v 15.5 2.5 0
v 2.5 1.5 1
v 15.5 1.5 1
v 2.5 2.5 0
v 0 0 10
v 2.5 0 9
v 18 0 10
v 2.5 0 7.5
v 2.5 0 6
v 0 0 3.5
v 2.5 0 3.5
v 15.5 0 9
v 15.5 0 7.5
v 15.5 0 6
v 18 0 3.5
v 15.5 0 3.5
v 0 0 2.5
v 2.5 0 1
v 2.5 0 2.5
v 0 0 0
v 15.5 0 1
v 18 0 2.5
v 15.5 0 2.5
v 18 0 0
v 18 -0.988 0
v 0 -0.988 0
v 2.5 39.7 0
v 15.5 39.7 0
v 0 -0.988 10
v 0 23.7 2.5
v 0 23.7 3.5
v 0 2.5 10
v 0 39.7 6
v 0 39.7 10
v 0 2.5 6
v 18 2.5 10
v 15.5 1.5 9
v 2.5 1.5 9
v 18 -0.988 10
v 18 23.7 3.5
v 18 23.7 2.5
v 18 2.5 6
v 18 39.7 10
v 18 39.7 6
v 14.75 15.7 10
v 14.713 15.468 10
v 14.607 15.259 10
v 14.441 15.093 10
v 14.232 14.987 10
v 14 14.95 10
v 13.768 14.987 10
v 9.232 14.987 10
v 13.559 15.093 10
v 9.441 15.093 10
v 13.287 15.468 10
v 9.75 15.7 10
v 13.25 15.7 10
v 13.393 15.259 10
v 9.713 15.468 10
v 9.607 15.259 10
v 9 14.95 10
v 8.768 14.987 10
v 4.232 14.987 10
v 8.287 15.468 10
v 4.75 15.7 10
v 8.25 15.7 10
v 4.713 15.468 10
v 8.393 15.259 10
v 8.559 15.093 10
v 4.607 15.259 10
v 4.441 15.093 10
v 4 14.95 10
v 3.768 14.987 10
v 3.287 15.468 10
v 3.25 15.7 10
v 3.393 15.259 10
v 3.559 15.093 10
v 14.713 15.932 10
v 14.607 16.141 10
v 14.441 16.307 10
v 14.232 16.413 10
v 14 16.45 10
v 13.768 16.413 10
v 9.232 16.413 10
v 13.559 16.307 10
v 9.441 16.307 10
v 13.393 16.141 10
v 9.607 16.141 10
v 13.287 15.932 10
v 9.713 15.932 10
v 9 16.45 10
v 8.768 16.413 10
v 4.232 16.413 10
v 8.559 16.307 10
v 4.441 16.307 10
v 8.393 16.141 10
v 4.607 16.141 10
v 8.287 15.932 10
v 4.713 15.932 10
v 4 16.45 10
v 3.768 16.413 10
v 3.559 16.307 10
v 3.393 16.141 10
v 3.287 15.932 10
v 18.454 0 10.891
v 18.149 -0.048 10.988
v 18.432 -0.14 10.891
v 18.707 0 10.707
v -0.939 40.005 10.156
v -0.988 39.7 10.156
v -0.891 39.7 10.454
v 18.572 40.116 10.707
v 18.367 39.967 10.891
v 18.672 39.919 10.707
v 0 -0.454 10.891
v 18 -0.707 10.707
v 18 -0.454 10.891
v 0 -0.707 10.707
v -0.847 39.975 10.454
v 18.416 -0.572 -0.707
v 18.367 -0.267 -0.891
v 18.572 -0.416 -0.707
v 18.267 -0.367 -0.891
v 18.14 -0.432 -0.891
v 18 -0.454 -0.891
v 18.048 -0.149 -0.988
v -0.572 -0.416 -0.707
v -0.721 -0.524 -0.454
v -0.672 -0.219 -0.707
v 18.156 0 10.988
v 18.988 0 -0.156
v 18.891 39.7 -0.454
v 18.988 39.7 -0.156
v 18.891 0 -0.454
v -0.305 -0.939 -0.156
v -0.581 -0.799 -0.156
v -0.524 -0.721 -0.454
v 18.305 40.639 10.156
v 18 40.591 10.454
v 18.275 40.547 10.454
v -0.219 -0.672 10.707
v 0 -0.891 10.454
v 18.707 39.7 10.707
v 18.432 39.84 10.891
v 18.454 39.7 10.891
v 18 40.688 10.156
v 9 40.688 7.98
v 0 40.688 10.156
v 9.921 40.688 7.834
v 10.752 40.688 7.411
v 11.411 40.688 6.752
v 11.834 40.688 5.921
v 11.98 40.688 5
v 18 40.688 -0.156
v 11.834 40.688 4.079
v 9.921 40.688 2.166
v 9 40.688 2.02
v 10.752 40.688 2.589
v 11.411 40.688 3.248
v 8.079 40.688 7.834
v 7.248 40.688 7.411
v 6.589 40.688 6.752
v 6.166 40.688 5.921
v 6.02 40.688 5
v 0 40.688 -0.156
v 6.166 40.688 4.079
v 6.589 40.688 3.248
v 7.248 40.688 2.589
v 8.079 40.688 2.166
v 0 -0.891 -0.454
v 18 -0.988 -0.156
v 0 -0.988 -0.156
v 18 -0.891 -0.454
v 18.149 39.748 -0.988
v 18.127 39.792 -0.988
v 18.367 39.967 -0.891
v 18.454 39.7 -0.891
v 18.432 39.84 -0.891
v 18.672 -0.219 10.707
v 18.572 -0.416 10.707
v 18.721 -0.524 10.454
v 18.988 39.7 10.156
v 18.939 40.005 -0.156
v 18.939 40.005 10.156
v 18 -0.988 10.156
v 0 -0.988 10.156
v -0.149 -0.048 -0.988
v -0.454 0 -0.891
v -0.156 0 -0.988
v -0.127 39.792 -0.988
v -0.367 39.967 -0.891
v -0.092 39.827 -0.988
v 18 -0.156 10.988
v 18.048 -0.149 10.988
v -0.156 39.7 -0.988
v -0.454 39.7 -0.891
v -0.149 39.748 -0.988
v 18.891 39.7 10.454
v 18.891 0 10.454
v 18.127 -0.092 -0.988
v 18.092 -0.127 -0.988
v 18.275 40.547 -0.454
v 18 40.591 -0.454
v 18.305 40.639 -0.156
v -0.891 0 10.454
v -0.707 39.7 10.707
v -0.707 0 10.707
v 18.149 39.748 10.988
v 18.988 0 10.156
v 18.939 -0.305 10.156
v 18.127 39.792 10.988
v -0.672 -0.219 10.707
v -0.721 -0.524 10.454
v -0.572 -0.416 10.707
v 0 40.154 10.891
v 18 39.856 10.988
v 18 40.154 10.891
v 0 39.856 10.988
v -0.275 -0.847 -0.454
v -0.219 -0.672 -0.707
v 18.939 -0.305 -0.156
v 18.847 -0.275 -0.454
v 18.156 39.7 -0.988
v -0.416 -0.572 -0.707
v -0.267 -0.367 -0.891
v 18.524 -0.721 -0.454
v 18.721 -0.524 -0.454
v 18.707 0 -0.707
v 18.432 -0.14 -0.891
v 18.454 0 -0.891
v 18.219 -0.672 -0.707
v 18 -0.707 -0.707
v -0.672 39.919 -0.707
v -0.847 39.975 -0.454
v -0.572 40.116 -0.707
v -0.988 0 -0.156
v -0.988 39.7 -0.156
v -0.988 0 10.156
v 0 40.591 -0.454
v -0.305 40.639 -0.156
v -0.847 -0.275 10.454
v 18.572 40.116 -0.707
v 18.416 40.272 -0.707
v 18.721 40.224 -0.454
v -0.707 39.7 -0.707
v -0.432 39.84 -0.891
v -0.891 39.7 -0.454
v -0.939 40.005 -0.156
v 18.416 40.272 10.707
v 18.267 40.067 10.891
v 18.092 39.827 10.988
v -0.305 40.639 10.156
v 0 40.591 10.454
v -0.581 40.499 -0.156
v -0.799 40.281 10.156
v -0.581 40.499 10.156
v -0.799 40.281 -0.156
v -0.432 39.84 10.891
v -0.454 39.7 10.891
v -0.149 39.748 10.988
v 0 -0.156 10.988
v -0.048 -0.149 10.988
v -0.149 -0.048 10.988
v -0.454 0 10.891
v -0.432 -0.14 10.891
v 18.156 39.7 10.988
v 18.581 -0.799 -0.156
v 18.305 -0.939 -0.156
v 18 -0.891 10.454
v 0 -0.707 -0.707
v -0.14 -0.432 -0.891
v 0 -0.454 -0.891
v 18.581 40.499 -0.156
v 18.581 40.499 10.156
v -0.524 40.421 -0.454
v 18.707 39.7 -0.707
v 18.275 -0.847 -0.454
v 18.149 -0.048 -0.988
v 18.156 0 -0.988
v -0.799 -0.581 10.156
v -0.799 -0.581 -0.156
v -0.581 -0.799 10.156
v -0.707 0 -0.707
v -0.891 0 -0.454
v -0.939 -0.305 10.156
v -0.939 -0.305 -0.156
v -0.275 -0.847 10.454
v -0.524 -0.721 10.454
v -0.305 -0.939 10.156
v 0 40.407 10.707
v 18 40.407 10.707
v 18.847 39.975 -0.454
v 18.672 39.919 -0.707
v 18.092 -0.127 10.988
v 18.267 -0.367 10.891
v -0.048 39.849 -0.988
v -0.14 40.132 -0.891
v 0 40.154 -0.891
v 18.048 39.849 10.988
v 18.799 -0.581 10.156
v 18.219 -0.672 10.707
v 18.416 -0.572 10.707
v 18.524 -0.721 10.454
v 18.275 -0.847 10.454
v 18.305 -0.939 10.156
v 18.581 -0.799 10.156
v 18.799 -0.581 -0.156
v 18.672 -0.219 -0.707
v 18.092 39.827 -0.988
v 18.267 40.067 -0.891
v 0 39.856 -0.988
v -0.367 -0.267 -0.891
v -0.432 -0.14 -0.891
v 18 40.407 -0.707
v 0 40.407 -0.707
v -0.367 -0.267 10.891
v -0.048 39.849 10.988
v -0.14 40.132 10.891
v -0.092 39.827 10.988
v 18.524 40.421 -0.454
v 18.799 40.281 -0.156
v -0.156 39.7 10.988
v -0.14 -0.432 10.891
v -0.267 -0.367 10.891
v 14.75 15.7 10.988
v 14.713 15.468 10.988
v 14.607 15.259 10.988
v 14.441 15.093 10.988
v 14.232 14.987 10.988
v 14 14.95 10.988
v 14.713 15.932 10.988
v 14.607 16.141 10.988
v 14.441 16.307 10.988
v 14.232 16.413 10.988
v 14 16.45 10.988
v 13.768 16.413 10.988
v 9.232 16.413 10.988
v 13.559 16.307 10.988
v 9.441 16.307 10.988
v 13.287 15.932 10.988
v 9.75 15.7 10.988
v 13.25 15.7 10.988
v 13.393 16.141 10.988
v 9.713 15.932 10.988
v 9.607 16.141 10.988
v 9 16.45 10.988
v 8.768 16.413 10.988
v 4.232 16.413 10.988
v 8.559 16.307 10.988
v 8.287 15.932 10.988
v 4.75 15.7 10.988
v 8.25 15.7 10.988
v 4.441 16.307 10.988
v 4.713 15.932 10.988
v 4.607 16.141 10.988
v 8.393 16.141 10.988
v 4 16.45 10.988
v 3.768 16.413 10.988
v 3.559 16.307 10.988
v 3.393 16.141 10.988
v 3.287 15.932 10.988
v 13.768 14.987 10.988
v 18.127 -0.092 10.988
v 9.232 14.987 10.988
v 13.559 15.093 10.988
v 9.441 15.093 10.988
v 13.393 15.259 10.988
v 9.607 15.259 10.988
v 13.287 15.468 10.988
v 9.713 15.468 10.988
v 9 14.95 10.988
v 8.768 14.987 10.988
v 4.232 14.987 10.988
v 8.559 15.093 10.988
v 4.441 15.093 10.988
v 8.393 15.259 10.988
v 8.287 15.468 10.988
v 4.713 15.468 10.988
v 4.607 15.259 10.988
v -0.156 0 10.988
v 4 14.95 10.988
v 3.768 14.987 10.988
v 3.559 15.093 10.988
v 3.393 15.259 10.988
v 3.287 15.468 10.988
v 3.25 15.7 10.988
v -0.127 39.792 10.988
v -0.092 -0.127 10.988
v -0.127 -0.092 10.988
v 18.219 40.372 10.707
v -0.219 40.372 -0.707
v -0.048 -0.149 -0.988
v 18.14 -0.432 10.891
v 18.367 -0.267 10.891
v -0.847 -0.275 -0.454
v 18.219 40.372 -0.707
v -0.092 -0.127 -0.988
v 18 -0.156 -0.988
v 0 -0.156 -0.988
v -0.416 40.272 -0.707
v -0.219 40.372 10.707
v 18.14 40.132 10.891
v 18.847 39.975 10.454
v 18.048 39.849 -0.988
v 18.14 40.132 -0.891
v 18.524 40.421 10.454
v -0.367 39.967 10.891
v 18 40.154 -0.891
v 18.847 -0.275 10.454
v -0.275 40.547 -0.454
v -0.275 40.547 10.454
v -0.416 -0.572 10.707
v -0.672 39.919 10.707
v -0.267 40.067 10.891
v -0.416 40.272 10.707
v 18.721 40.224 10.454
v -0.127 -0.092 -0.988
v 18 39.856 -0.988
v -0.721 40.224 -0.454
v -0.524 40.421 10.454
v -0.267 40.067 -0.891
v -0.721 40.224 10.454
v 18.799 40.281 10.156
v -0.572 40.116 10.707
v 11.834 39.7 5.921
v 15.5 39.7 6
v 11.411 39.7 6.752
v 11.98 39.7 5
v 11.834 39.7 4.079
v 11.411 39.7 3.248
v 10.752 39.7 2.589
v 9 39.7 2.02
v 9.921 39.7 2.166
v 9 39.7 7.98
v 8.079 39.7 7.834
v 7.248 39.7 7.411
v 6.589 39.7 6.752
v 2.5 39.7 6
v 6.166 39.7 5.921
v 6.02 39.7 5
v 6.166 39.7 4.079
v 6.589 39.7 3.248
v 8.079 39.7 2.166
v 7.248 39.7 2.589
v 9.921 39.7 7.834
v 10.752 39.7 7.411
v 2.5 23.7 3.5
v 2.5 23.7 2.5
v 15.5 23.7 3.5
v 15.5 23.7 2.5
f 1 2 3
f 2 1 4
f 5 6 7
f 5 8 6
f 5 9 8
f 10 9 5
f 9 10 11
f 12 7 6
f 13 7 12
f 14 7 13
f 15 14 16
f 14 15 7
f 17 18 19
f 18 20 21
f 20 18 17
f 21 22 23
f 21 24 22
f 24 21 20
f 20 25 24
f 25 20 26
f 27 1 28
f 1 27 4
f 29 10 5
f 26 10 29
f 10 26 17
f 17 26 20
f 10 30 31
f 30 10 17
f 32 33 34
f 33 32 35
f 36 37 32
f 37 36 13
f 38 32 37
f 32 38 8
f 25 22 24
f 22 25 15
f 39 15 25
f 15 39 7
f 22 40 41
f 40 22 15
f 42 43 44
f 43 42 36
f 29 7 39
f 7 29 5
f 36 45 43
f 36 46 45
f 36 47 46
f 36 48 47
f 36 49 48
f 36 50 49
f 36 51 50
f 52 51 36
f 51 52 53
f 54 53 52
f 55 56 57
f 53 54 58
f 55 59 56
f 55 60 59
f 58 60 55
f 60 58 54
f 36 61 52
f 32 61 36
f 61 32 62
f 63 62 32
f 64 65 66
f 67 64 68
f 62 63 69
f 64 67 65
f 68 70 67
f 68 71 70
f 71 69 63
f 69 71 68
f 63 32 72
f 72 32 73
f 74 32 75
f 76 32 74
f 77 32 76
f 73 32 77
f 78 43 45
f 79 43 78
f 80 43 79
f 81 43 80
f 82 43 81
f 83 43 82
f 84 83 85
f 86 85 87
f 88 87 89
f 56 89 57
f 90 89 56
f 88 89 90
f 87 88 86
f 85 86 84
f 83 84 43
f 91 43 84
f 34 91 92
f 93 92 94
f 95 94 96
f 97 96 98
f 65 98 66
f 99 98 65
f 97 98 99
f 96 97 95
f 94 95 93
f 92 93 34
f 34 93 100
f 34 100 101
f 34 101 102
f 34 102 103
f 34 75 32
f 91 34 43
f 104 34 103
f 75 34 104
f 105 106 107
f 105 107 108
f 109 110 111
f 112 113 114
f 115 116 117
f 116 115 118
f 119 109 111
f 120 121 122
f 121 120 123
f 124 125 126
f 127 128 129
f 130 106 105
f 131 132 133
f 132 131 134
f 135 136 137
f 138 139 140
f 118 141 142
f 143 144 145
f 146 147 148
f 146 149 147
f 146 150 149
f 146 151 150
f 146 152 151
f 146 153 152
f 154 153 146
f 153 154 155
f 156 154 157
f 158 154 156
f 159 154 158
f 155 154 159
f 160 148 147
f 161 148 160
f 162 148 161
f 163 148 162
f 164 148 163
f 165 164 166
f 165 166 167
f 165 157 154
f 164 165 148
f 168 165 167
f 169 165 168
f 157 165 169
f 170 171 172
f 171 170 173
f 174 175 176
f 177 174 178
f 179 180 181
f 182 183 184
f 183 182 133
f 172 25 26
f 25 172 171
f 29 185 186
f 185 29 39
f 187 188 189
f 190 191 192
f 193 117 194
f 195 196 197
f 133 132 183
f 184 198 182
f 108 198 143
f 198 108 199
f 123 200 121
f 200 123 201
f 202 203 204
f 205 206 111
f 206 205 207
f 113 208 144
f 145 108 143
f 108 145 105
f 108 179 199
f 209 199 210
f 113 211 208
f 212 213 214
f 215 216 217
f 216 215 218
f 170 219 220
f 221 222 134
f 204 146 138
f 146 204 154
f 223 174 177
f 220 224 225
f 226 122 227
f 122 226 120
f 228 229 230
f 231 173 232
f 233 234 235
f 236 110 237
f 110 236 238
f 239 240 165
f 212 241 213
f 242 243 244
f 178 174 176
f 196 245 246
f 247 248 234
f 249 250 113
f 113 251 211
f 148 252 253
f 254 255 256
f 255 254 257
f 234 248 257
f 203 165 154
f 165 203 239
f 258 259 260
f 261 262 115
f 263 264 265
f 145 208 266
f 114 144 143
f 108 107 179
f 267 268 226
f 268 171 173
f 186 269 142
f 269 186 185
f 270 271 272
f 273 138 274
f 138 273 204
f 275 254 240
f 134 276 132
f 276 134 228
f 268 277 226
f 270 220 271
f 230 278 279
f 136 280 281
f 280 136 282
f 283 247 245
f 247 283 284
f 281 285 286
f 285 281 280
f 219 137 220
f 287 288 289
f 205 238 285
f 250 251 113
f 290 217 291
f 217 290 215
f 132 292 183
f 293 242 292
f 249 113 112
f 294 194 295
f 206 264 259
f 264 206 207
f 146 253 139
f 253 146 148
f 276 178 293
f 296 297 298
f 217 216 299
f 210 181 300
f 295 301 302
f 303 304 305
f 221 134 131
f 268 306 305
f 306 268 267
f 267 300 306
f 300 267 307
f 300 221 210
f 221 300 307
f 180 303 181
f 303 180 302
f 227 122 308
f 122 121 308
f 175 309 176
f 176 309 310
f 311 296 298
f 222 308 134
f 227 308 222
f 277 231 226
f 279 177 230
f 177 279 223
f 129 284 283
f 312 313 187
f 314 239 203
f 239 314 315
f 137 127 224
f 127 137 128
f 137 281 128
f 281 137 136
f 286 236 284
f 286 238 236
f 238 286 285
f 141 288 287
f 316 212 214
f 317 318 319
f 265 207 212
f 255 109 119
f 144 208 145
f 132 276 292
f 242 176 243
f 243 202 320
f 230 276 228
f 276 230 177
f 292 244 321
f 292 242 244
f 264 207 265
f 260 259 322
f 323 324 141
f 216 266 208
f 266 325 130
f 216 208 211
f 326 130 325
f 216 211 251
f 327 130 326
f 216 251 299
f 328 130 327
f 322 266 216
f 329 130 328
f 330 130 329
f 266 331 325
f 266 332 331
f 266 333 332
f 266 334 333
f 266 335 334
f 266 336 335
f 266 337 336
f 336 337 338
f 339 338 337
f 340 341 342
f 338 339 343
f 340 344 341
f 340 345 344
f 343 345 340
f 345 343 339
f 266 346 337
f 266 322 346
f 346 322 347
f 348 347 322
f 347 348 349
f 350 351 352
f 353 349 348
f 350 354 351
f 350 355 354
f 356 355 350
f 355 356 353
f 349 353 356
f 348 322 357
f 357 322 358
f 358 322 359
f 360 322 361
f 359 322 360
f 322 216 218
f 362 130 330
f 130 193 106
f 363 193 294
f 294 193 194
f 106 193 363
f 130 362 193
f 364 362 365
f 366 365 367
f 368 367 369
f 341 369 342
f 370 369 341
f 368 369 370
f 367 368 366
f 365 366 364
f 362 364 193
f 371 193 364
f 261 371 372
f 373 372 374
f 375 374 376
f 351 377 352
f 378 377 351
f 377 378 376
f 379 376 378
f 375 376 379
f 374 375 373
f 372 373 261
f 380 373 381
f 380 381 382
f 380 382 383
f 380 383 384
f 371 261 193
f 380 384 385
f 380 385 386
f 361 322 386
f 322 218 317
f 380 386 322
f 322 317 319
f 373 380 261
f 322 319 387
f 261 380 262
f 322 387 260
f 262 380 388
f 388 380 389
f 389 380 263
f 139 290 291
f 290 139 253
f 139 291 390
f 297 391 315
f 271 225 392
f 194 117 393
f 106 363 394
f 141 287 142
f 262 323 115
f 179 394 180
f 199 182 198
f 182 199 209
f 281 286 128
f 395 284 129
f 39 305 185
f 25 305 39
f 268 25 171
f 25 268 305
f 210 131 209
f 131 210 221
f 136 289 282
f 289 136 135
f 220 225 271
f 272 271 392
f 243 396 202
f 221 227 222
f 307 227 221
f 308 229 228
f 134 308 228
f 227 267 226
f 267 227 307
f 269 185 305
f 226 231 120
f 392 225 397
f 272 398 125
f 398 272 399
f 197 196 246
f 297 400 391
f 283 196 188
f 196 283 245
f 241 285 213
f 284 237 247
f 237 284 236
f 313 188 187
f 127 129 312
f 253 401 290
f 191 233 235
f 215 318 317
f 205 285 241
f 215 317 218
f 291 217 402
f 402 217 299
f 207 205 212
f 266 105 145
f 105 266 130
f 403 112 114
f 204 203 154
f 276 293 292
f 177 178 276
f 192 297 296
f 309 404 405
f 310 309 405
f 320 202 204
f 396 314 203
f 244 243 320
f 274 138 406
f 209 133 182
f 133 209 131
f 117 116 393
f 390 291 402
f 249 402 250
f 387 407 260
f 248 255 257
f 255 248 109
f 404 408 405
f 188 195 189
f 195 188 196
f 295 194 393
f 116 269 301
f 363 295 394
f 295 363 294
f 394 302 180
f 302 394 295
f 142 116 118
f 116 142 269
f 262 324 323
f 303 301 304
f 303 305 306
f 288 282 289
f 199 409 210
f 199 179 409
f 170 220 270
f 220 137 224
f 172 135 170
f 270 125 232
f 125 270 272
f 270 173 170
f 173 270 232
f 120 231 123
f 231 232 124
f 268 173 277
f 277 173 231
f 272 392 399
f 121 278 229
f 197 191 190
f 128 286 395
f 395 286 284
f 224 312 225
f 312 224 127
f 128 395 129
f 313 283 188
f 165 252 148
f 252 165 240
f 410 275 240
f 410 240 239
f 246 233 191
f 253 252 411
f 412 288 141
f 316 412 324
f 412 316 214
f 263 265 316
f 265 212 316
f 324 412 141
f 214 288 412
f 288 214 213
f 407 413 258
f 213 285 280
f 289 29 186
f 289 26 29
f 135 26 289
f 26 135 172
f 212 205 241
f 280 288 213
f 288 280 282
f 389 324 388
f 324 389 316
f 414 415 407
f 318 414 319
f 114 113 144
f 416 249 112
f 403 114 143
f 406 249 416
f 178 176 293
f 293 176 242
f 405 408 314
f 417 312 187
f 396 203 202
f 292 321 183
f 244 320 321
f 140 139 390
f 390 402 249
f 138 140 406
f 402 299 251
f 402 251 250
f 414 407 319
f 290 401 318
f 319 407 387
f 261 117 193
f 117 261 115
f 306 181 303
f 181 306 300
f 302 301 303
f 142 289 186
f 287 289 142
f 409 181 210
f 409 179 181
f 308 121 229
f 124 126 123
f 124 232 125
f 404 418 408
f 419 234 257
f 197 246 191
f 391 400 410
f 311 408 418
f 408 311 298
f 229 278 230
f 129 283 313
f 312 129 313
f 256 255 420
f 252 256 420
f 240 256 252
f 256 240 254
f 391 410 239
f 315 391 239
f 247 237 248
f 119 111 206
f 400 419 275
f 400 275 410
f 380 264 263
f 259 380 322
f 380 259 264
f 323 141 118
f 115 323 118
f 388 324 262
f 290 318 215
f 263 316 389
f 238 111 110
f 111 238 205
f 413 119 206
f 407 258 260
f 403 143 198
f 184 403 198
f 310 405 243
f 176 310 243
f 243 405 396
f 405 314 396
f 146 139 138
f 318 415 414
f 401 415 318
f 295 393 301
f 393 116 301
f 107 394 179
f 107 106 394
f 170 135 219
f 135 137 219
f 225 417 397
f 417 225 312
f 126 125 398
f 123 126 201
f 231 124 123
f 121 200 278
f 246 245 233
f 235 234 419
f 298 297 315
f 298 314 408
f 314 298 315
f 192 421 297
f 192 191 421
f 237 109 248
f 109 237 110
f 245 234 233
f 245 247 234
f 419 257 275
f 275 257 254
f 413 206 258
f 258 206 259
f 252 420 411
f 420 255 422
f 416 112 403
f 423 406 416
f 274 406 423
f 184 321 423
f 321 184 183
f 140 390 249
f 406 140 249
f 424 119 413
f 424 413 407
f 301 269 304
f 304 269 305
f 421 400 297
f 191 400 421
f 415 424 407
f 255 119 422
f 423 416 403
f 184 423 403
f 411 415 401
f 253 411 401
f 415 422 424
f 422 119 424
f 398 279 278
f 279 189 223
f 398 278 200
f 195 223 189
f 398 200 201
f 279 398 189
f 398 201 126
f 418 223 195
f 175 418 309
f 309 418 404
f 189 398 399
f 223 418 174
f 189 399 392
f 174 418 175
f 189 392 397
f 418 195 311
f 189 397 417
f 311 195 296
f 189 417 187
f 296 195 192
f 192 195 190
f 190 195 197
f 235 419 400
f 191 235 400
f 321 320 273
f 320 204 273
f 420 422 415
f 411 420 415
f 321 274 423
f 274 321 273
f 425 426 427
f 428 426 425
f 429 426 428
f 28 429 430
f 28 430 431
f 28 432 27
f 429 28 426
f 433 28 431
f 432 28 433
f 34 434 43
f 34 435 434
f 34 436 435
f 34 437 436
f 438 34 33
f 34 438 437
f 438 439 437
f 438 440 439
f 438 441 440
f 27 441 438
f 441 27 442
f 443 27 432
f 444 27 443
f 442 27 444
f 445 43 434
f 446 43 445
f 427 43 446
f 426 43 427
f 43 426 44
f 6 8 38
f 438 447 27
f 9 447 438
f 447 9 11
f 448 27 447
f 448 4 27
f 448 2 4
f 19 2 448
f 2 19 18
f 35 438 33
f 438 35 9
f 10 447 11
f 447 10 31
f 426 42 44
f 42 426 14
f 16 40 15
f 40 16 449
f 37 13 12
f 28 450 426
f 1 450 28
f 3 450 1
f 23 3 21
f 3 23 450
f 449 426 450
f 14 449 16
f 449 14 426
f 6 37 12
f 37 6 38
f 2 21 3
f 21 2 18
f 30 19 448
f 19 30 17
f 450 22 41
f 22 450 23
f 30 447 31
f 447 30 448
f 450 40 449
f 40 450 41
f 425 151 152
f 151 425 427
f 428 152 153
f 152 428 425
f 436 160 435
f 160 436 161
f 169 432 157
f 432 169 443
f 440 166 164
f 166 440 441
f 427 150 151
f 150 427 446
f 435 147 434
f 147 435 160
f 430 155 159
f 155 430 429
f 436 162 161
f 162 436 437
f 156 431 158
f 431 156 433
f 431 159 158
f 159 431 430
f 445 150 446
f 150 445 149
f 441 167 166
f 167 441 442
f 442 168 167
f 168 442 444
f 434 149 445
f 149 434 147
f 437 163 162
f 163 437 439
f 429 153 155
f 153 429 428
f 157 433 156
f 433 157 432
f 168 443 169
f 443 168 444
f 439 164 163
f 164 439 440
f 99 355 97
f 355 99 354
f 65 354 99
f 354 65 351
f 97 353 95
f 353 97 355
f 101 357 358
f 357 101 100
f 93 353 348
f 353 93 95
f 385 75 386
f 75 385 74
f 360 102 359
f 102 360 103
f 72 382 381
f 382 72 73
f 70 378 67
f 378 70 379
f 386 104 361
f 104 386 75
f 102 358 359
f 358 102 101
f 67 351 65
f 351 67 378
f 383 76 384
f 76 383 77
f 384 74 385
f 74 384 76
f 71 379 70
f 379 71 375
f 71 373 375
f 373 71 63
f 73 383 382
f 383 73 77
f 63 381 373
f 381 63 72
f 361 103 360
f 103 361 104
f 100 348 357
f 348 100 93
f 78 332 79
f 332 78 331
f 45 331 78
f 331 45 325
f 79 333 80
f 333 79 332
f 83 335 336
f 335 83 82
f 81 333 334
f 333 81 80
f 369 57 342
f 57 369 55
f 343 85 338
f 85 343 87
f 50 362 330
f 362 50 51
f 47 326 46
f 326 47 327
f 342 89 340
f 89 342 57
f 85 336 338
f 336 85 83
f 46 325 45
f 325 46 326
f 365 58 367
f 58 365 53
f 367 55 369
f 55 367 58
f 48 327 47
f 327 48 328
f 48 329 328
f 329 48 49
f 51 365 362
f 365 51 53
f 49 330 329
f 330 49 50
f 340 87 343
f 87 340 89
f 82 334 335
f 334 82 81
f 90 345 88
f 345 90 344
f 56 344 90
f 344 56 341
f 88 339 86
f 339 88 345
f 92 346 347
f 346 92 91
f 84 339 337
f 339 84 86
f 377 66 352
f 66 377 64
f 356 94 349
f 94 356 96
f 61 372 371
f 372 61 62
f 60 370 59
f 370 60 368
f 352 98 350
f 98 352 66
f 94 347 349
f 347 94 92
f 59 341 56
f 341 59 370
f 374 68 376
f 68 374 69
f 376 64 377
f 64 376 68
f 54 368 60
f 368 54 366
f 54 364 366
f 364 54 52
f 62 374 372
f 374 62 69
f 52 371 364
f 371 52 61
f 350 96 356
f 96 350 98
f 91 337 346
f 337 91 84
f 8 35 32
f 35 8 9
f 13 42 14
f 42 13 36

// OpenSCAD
$fn=20;

//breite = 70;
tiefe_pcb = 23.7;
tiefe_jack = 14;

breite = 18;
tiefe = tiefe_pcb + 2 + tiefe_jack;
hoehe = 10;

schiene = 2.5;
platinendicke = 1;


wanddicke = 1;
edge_radius = wanddicke;

module schienen() {
    cube([schiene, tiefe, schiene]);

    translate([breite-schiene, 0, 0])
    cube([schiene, tiefe, schiene]);

    translate([0, 0, schiene + platinendicke]) {
        cube([schiene, tiefe, schiene]);
        
        translate([breite-schiene, 0, 0])
        cube([schiene, tiefe, schiene]);
    }
    
    // anschlagpunkt schienenende pcb
    translate([0, tiefe_pcb, schiene]) cube([schiene, tiefe-tiefe_pcb, schiene]);
    translate([breite-schiene, tiefe_pcb, schiene]) cube([schiene, tiefe-tiefe_pcb, schiene]);
}

/*
// output terminals
module output_terminals() {
    translate([-4, 0, 0]) // display rand überstand breite
    color([0,0,1]) {
        translate([terminal_box_breite/2,
                   1*tiefe/4,
                   hoehe])
        cylinder(d=terminal_durchmesser, wanddicke);

        translate([terminal_box_breite/2,
                   3*tiefe/4,
                   hoehe])
        cylinder(d=terminal_durchmesser, wanddicke);
    };
}
*/

module usbc_port() {
    /*
    platinenunterkante_bis_mitte_buchse = 7;
    from_bottom_insinde = schiene + platinenunterkante_bis_mitte_buchse - 6/2;
    usbc_port_width = 12;
    port_height = 7;
    color([1,1,0])
    translate([
        -wanddicke,
        port_height/2+5, //tiefe/2+6/2-usbc_port_width/2,
        port_height/2+from_bottom_insinde])
    rotate([90, 0, 90])
    hull() {
        translate([0, 0, 0])
          cylinder(h=wanddicke+schiene, d=port_height);
        translate([7, 0, 0])
          cylinder(h=wanddicke+schiene, d=port_height);
    }
    */
}

module pg_deckelauflage() {
    polygon(points=[[0,0], [0, 2.5], [2.5, 0]]);
}

// deckelauflage
// z links
translate([0, 0, 5])
linear_extrude(hoehe -5)
pg_deckelauflage();

// z rechts
translate([breite, 0, hoehe])
rotate([0, 180, 0])
linear_extrude(hoehe-5)
pg_deckelauflage();


difference() {
    union() {
        // x unten
        translate([breite, 0, 0])
        rotate([0, -90, 0])
        linear_extrude(breite)
        pg_deckelauflage();
        
        // x oben
        translate([0, 0, hoehe])
        rotate([0, 90, 0])
        linear_extrude(breite)
        pg_deckelauflage();
    }
        
    // phone jack is 12mm width but top side switches 13mm
    translate([breite/2-13/2, 0, hoehe/2-8/2]) cube([13, 10, 8]);
}




difference() {
    union() {
        difference() {
            hull() {
                sphere(r=edge_radius);
                translate([breite, 0, 0]) sphere(r=edge_radius);
                translate([breite, tiefe, 0]) sphere(r=edge_radius);
                translate([0, tiefe, 0]) sphere(r=edge_radius);
                translate([0, 0, hoehe]) {
                    sphere(r=edge_radius);
                    translate([breite, 0, 0]) sphere(r=edge_radius);
                    translate([breite, tiefe, 0]) sphere(r=edge_radius);
                    translate([0, tiefe, 0]) sphere(r=edge_radius);
                }
            }
            union() {
                translate([0, 0-10, 0]) cube([breite, tiefe+10, hoehe]);
                //display();
                //output_terminals();
                
                
            }
        }
        schienen();
    }
    union() {
        usbc_port();

        // jack
        translate([breite/2, tiefe+10, hoehe/2])
        rotate([90, 0, 0])
        cylinder(d=5.96, h=tiefe);
        
        // loecher
        translate([4, 15.7, hoehe]) cylinder(d=1.5, h=wanddicke);
        translate([breite-4, 15.7, hoehe]) cylinder(d=1.5, h=wanddicke);
        translate([breite/2, 15.7, hoehe]) cylinder(d=1.5, h=wanddicke);
    }
}
     


//usbc_port();
